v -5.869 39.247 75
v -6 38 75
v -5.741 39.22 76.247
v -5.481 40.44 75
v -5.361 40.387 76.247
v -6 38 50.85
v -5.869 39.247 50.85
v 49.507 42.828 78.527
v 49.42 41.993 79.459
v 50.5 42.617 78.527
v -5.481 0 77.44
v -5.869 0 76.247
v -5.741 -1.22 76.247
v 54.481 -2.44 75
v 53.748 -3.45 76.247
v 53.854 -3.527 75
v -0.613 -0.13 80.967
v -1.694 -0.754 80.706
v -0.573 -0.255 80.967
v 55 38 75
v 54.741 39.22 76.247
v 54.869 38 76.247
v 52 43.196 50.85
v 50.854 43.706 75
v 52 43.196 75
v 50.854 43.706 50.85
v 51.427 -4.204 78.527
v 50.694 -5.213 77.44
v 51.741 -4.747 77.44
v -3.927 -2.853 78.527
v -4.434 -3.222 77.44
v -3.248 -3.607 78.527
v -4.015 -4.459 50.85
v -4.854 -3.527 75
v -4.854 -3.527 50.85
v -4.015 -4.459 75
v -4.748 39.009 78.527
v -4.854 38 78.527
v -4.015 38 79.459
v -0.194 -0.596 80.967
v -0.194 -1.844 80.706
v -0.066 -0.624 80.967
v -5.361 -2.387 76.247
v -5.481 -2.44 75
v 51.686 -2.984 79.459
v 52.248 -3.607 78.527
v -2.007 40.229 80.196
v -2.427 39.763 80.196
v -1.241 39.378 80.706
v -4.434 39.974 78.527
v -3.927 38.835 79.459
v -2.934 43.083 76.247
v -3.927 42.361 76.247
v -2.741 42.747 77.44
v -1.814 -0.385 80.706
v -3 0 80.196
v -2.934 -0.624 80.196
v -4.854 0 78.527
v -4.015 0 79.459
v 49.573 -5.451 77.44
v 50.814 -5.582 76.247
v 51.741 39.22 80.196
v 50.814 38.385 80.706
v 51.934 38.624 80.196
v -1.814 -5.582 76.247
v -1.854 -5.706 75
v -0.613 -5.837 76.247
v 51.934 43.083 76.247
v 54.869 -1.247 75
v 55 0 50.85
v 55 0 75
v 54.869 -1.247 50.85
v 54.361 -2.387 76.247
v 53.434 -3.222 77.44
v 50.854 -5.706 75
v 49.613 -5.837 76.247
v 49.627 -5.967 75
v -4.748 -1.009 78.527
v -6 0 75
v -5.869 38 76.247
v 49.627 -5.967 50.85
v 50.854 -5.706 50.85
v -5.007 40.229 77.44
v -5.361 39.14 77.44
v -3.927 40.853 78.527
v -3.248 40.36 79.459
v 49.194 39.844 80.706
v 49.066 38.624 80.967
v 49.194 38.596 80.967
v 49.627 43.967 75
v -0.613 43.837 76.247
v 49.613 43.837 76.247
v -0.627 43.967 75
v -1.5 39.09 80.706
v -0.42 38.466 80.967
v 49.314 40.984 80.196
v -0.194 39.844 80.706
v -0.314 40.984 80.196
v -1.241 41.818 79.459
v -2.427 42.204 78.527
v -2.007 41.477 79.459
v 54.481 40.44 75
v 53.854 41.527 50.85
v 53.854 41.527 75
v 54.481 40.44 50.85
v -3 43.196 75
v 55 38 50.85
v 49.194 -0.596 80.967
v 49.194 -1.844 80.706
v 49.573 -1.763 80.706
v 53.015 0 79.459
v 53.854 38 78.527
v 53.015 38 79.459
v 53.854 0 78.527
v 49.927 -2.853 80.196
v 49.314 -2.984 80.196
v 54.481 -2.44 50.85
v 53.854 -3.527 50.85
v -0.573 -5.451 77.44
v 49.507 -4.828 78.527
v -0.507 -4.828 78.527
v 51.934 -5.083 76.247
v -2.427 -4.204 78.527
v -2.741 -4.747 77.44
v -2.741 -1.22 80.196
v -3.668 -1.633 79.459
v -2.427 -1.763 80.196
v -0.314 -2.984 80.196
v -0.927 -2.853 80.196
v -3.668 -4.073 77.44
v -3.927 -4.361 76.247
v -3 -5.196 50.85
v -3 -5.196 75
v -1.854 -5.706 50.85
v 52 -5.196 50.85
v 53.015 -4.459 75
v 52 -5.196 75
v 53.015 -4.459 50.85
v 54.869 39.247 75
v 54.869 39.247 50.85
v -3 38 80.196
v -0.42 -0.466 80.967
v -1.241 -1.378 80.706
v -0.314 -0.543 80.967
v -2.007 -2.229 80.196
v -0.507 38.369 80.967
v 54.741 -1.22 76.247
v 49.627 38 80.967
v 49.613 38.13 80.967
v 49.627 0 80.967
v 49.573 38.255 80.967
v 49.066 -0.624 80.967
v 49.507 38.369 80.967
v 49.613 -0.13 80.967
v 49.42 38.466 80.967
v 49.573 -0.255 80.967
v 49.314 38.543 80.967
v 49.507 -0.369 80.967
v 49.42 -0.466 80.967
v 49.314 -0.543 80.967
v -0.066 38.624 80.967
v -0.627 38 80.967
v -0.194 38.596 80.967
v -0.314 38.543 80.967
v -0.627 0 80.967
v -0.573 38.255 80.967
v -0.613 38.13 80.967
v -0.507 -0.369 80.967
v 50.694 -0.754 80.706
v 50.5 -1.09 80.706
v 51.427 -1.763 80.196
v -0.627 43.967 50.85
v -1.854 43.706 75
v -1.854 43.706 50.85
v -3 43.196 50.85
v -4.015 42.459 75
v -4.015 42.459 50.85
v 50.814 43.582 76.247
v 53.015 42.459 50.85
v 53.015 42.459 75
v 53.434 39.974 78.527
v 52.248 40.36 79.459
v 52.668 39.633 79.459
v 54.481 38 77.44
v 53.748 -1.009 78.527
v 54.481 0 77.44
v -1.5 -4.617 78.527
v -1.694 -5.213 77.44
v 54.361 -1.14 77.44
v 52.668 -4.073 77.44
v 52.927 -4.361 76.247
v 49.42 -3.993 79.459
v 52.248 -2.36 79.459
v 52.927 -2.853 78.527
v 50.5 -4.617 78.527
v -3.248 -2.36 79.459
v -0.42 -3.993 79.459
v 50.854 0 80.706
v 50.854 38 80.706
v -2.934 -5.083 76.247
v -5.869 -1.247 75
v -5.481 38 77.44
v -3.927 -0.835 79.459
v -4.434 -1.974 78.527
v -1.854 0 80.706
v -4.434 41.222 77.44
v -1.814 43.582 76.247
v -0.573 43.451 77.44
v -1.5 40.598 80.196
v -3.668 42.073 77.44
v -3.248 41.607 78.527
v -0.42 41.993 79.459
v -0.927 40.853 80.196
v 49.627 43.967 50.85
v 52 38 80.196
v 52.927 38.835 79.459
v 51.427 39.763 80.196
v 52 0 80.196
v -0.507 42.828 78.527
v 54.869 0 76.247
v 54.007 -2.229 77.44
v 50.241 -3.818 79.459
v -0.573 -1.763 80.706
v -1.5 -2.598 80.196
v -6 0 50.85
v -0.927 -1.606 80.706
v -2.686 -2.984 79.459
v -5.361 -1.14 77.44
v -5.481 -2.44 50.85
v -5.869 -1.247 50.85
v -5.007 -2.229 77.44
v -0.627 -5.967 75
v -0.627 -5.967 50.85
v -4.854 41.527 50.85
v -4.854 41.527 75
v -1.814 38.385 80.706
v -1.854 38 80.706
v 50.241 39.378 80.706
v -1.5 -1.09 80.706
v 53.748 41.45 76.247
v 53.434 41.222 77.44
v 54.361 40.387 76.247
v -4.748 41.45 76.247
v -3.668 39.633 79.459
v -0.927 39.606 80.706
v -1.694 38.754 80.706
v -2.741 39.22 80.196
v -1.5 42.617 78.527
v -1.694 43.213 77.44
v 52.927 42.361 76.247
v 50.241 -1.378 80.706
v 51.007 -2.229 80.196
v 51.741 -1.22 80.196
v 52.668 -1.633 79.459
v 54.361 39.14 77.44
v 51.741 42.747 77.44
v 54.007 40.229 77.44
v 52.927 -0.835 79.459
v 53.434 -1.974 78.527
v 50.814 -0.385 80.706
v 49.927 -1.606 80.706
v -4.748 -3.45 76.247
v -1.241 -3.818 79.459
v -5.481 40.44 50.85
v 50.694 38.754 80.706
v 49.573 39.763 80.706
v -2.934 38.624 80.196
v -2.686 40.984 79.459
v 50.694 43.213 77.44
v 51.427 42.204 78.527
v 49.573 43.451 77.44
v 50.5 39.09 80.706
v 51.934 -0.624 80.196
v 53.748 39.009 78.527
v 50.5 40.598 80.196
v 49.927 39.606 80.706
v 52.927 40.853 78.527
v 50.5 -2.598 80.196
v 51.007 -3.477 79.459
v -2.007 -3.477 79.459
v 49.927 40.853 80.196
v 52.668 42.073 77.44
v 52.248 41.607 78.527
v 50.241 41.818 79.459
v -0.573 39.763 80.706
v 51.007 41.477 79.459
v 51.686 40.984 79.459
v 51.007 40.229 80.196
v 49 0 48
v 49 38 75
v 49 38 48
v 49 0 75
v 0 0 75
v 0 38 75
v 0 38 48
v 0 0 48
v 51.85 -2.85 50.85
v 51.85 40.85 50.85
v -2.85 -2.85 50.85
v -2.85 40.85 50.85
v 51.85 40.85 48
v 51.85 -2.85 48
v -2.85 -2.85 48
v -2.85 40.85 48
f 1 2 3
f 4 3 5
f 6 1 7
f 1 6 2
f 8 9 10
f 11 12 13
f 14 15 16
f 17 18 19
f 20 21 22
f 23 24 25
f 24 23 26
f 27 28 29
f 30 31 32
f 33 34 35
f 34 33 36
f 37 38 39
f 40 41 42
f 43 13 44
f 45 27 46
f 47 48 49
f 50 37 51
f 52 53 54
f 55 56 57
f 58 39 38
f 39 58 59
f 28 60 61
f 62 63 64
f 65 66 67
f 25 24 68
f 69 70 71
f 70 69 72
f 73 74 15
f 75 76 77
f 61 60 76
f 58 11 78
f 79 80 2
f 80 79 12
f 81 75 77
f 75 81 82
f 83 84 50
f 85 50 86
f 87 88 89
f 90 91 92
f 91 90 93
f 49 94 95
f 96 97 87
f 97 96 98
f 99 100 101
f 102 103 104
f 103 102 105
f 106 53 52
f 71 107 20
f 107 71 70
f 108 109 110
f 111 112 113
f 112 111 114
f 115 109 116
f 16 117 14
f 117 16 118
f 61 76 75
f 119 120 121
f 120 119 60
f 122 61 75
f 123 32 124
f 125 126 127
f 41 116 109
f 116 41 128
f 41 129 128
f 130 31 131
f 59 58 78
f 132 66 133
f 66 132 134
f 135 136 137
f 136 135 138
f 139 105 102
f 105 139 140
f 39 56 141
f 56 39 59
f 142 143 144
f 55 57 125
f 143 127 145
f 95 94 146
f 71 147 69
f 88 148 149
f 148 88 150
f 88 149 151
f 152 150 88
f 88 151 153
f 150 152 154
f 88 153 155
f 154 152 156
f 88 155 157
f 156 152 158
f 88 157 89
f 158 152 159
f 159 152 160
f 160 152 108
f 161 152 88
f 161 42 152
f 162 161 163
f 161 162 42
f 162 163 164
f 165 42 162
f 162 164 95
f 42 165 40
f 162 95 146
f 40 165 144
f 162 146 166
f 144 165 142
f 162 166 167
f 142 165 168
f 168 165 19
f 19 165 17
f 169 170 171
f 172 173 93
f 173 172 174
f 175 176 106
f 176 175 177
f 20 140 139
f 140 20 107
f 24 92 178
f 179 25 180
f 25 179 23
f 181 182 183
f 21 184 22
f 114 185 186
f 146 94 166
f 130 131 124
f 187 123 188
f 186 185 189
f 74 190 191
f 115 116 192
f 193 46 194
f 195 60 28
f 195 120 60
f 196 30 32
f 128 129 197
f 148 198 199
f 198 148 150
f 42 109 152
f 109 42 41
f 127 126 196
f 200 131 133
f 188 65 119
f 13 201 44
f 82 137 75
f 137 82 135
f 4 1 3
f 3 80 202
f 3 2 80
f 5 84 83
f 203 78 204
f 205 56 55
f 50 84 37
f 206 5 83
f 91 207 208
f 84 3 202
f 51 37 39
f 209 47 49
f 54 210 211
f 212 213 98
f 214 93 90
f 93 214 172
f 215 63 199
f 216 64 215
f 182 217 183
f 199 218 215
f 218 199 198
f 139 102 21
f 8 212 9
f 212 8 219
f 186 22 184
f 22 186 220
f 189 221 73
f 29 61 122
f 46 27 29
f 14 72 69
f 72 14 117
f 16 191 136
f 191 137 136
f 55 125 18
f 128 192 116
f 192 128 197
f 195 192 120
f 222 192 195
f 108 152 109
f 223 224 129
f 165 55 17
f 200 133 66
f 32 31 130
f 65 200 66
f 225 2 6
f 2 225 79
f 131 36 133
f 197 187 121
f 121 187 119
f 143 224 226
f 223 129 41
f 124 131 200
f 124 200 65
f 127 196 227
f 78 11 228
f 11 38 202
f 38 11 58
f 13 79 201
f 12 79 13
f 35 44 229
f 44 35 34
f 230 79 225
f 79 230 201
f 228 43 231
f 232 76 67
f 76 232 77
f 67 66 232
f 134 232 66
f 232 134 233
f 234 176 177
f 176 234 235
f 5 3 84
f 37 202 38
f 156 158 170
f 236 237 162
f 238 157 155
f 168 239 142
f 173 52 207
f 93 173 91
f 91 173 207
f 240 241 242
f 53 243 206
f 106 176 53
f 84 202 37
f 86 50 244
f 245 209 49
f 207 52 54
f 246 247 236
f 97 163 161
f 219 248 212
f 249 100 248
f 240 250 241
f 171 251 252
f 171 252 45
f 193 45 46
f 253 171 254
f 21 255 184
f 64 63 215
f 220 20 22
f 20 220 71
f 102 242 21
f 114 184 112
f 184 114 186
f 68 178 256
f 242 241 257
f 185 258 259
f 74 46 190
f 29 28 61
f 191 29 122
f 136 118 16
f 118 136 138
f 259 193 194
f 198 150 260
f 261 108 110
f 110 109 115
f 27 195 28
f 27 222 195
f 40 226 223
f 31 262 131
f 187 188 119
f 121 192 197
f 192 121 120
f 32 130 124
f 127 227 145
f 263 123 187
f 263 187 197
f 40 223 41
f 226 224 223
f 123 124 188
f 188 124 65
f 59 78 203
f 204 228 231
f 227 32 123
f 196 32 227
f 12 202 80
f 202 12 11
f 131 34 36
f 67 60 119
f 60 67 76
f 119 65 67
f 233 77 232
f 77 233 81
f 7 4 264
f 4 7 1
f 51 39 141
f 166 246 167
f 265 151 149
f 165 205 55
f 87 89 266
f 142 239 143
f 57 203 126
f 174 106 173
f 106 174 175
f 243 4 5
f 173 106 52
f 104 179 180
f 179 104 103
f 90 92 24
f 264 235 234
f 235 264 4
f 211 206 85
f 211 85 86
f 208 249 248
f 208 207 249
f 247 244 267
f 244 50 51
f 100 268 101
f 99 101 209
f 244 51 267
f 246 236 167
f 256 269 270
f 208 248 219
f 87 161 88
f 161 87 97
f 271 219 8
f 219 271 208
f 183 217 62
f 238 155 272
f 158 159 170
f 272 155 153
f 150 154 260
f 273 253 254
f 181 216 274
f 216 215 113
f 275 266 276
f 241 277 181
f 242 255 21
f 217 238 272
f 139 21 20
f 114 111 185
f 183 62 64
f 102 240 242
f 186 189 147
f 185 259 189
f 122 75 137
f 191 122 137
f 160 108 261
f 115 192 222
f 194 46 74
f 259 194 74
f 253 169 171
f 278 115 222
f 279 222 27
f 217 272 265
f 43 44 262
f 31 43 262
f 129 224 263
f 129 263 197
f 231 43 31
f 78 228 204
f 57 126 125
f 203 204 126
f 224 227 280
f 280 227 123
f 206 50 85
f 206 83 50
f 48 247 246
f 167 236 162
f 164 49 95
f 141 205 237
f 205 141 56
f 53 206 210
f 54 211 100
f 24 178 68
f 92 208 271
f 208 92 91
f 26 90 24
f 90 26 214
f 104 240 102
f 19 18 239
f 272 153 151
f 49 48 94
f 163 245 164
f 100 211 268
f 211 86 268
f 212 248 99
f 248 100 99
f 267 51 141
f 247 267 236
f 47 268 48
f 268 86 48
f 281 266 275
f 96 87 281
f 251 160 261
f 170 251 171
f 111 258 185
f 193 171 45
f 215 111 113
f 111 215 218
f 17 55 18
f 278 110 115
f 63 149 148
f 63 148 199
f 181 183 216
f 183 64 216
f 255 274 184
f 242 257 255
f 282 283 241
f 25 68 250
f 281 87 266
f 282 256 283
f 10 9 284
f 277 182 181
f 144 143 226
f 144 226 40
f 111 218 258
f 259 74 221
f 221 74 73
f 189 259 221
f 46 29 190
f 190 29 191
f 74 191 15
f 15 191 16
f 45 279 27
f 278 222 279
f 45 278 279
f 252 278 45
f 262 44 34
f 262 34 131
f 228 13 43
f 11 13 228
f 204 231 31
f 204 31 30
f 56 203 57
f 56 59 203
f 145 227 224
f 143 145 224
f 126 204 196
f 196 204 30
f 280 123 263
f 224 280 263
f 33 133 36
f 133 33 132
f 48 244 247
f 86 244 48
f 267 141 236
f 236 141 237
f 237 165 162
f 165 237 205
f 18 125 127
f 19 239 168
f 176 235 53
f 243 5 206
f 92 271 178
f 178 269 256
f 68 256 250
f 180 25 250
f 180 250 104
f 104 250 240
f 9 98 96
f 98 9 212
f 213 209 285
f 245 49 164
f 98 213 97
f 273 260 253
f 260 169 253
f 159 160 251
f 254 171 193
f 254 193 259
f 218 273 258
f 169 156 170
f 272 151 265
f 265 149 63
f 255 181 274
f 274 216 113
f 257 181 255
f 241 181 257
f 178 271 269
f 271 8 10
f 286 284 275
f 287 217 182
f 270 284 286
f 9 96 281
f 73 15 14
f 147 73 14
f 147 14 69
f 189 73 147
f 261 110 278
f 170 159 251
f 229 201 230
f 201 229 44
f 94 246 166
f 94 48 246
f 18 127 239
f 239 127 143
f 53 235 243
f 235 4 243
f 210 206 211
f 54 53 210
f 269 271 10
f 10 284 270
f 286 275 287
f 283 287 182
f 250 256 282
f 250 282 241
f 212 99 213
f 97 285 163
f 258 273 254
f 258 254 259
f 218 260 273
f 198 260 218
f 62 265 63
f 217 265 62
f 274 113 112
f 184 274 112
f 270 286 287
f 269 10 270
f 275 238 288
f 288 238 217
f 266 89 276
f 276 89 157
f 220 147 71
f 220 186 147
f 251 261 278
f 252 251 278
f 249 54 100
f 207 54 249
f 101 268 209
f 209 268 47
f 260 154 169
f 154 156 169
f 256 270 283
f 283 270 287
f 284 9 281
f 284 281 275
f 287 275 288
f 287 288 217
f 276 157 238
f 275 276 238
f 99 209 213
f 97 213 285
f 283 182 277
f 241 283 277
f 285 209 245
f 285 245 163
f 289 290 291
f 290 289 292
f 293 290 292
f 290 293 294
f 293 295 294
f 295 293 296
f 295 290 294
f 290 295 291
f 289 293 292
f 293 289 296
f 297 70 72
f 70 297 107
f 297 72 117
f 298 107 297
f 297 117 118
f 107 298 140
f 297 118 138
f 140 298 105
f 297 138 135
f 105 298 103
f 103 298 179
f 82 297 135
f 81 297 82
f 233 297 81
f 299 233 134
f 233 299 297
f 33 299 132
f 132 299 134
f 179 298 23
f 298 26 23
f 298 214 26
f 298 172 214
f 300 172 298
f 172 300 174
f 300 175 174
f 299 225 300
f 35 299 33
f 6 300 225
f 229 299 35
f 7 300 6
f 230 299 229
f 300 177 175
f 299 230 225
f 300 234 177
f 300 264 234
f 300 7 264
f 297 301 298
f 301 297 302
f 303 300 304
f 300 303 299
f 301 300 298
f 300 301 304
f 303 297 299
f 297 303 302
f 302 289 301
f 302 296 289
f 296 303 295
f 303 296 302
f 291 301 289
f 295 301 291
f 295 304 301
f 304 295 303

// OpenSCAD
difference () {
  translate ([49/2, 19, 75/2]) {
    difference () {
      minkowski () {
        cube ([49, 38, 75], center=true);
        sphere ($fn=30, r=6);
      }
      cube ([49, 38, 75], center=true);
    }
  }
  translate ([0, 0, -52]) {
    cube ([200, 200, 200], center=true);
  }
  translate ([24.5, 19.0, -49.15]) {
    difference () {
      cube ([300, 300, 200], center=true);
      cube ([54.7, 43.7, 300], center=true);
    }
  }
}
